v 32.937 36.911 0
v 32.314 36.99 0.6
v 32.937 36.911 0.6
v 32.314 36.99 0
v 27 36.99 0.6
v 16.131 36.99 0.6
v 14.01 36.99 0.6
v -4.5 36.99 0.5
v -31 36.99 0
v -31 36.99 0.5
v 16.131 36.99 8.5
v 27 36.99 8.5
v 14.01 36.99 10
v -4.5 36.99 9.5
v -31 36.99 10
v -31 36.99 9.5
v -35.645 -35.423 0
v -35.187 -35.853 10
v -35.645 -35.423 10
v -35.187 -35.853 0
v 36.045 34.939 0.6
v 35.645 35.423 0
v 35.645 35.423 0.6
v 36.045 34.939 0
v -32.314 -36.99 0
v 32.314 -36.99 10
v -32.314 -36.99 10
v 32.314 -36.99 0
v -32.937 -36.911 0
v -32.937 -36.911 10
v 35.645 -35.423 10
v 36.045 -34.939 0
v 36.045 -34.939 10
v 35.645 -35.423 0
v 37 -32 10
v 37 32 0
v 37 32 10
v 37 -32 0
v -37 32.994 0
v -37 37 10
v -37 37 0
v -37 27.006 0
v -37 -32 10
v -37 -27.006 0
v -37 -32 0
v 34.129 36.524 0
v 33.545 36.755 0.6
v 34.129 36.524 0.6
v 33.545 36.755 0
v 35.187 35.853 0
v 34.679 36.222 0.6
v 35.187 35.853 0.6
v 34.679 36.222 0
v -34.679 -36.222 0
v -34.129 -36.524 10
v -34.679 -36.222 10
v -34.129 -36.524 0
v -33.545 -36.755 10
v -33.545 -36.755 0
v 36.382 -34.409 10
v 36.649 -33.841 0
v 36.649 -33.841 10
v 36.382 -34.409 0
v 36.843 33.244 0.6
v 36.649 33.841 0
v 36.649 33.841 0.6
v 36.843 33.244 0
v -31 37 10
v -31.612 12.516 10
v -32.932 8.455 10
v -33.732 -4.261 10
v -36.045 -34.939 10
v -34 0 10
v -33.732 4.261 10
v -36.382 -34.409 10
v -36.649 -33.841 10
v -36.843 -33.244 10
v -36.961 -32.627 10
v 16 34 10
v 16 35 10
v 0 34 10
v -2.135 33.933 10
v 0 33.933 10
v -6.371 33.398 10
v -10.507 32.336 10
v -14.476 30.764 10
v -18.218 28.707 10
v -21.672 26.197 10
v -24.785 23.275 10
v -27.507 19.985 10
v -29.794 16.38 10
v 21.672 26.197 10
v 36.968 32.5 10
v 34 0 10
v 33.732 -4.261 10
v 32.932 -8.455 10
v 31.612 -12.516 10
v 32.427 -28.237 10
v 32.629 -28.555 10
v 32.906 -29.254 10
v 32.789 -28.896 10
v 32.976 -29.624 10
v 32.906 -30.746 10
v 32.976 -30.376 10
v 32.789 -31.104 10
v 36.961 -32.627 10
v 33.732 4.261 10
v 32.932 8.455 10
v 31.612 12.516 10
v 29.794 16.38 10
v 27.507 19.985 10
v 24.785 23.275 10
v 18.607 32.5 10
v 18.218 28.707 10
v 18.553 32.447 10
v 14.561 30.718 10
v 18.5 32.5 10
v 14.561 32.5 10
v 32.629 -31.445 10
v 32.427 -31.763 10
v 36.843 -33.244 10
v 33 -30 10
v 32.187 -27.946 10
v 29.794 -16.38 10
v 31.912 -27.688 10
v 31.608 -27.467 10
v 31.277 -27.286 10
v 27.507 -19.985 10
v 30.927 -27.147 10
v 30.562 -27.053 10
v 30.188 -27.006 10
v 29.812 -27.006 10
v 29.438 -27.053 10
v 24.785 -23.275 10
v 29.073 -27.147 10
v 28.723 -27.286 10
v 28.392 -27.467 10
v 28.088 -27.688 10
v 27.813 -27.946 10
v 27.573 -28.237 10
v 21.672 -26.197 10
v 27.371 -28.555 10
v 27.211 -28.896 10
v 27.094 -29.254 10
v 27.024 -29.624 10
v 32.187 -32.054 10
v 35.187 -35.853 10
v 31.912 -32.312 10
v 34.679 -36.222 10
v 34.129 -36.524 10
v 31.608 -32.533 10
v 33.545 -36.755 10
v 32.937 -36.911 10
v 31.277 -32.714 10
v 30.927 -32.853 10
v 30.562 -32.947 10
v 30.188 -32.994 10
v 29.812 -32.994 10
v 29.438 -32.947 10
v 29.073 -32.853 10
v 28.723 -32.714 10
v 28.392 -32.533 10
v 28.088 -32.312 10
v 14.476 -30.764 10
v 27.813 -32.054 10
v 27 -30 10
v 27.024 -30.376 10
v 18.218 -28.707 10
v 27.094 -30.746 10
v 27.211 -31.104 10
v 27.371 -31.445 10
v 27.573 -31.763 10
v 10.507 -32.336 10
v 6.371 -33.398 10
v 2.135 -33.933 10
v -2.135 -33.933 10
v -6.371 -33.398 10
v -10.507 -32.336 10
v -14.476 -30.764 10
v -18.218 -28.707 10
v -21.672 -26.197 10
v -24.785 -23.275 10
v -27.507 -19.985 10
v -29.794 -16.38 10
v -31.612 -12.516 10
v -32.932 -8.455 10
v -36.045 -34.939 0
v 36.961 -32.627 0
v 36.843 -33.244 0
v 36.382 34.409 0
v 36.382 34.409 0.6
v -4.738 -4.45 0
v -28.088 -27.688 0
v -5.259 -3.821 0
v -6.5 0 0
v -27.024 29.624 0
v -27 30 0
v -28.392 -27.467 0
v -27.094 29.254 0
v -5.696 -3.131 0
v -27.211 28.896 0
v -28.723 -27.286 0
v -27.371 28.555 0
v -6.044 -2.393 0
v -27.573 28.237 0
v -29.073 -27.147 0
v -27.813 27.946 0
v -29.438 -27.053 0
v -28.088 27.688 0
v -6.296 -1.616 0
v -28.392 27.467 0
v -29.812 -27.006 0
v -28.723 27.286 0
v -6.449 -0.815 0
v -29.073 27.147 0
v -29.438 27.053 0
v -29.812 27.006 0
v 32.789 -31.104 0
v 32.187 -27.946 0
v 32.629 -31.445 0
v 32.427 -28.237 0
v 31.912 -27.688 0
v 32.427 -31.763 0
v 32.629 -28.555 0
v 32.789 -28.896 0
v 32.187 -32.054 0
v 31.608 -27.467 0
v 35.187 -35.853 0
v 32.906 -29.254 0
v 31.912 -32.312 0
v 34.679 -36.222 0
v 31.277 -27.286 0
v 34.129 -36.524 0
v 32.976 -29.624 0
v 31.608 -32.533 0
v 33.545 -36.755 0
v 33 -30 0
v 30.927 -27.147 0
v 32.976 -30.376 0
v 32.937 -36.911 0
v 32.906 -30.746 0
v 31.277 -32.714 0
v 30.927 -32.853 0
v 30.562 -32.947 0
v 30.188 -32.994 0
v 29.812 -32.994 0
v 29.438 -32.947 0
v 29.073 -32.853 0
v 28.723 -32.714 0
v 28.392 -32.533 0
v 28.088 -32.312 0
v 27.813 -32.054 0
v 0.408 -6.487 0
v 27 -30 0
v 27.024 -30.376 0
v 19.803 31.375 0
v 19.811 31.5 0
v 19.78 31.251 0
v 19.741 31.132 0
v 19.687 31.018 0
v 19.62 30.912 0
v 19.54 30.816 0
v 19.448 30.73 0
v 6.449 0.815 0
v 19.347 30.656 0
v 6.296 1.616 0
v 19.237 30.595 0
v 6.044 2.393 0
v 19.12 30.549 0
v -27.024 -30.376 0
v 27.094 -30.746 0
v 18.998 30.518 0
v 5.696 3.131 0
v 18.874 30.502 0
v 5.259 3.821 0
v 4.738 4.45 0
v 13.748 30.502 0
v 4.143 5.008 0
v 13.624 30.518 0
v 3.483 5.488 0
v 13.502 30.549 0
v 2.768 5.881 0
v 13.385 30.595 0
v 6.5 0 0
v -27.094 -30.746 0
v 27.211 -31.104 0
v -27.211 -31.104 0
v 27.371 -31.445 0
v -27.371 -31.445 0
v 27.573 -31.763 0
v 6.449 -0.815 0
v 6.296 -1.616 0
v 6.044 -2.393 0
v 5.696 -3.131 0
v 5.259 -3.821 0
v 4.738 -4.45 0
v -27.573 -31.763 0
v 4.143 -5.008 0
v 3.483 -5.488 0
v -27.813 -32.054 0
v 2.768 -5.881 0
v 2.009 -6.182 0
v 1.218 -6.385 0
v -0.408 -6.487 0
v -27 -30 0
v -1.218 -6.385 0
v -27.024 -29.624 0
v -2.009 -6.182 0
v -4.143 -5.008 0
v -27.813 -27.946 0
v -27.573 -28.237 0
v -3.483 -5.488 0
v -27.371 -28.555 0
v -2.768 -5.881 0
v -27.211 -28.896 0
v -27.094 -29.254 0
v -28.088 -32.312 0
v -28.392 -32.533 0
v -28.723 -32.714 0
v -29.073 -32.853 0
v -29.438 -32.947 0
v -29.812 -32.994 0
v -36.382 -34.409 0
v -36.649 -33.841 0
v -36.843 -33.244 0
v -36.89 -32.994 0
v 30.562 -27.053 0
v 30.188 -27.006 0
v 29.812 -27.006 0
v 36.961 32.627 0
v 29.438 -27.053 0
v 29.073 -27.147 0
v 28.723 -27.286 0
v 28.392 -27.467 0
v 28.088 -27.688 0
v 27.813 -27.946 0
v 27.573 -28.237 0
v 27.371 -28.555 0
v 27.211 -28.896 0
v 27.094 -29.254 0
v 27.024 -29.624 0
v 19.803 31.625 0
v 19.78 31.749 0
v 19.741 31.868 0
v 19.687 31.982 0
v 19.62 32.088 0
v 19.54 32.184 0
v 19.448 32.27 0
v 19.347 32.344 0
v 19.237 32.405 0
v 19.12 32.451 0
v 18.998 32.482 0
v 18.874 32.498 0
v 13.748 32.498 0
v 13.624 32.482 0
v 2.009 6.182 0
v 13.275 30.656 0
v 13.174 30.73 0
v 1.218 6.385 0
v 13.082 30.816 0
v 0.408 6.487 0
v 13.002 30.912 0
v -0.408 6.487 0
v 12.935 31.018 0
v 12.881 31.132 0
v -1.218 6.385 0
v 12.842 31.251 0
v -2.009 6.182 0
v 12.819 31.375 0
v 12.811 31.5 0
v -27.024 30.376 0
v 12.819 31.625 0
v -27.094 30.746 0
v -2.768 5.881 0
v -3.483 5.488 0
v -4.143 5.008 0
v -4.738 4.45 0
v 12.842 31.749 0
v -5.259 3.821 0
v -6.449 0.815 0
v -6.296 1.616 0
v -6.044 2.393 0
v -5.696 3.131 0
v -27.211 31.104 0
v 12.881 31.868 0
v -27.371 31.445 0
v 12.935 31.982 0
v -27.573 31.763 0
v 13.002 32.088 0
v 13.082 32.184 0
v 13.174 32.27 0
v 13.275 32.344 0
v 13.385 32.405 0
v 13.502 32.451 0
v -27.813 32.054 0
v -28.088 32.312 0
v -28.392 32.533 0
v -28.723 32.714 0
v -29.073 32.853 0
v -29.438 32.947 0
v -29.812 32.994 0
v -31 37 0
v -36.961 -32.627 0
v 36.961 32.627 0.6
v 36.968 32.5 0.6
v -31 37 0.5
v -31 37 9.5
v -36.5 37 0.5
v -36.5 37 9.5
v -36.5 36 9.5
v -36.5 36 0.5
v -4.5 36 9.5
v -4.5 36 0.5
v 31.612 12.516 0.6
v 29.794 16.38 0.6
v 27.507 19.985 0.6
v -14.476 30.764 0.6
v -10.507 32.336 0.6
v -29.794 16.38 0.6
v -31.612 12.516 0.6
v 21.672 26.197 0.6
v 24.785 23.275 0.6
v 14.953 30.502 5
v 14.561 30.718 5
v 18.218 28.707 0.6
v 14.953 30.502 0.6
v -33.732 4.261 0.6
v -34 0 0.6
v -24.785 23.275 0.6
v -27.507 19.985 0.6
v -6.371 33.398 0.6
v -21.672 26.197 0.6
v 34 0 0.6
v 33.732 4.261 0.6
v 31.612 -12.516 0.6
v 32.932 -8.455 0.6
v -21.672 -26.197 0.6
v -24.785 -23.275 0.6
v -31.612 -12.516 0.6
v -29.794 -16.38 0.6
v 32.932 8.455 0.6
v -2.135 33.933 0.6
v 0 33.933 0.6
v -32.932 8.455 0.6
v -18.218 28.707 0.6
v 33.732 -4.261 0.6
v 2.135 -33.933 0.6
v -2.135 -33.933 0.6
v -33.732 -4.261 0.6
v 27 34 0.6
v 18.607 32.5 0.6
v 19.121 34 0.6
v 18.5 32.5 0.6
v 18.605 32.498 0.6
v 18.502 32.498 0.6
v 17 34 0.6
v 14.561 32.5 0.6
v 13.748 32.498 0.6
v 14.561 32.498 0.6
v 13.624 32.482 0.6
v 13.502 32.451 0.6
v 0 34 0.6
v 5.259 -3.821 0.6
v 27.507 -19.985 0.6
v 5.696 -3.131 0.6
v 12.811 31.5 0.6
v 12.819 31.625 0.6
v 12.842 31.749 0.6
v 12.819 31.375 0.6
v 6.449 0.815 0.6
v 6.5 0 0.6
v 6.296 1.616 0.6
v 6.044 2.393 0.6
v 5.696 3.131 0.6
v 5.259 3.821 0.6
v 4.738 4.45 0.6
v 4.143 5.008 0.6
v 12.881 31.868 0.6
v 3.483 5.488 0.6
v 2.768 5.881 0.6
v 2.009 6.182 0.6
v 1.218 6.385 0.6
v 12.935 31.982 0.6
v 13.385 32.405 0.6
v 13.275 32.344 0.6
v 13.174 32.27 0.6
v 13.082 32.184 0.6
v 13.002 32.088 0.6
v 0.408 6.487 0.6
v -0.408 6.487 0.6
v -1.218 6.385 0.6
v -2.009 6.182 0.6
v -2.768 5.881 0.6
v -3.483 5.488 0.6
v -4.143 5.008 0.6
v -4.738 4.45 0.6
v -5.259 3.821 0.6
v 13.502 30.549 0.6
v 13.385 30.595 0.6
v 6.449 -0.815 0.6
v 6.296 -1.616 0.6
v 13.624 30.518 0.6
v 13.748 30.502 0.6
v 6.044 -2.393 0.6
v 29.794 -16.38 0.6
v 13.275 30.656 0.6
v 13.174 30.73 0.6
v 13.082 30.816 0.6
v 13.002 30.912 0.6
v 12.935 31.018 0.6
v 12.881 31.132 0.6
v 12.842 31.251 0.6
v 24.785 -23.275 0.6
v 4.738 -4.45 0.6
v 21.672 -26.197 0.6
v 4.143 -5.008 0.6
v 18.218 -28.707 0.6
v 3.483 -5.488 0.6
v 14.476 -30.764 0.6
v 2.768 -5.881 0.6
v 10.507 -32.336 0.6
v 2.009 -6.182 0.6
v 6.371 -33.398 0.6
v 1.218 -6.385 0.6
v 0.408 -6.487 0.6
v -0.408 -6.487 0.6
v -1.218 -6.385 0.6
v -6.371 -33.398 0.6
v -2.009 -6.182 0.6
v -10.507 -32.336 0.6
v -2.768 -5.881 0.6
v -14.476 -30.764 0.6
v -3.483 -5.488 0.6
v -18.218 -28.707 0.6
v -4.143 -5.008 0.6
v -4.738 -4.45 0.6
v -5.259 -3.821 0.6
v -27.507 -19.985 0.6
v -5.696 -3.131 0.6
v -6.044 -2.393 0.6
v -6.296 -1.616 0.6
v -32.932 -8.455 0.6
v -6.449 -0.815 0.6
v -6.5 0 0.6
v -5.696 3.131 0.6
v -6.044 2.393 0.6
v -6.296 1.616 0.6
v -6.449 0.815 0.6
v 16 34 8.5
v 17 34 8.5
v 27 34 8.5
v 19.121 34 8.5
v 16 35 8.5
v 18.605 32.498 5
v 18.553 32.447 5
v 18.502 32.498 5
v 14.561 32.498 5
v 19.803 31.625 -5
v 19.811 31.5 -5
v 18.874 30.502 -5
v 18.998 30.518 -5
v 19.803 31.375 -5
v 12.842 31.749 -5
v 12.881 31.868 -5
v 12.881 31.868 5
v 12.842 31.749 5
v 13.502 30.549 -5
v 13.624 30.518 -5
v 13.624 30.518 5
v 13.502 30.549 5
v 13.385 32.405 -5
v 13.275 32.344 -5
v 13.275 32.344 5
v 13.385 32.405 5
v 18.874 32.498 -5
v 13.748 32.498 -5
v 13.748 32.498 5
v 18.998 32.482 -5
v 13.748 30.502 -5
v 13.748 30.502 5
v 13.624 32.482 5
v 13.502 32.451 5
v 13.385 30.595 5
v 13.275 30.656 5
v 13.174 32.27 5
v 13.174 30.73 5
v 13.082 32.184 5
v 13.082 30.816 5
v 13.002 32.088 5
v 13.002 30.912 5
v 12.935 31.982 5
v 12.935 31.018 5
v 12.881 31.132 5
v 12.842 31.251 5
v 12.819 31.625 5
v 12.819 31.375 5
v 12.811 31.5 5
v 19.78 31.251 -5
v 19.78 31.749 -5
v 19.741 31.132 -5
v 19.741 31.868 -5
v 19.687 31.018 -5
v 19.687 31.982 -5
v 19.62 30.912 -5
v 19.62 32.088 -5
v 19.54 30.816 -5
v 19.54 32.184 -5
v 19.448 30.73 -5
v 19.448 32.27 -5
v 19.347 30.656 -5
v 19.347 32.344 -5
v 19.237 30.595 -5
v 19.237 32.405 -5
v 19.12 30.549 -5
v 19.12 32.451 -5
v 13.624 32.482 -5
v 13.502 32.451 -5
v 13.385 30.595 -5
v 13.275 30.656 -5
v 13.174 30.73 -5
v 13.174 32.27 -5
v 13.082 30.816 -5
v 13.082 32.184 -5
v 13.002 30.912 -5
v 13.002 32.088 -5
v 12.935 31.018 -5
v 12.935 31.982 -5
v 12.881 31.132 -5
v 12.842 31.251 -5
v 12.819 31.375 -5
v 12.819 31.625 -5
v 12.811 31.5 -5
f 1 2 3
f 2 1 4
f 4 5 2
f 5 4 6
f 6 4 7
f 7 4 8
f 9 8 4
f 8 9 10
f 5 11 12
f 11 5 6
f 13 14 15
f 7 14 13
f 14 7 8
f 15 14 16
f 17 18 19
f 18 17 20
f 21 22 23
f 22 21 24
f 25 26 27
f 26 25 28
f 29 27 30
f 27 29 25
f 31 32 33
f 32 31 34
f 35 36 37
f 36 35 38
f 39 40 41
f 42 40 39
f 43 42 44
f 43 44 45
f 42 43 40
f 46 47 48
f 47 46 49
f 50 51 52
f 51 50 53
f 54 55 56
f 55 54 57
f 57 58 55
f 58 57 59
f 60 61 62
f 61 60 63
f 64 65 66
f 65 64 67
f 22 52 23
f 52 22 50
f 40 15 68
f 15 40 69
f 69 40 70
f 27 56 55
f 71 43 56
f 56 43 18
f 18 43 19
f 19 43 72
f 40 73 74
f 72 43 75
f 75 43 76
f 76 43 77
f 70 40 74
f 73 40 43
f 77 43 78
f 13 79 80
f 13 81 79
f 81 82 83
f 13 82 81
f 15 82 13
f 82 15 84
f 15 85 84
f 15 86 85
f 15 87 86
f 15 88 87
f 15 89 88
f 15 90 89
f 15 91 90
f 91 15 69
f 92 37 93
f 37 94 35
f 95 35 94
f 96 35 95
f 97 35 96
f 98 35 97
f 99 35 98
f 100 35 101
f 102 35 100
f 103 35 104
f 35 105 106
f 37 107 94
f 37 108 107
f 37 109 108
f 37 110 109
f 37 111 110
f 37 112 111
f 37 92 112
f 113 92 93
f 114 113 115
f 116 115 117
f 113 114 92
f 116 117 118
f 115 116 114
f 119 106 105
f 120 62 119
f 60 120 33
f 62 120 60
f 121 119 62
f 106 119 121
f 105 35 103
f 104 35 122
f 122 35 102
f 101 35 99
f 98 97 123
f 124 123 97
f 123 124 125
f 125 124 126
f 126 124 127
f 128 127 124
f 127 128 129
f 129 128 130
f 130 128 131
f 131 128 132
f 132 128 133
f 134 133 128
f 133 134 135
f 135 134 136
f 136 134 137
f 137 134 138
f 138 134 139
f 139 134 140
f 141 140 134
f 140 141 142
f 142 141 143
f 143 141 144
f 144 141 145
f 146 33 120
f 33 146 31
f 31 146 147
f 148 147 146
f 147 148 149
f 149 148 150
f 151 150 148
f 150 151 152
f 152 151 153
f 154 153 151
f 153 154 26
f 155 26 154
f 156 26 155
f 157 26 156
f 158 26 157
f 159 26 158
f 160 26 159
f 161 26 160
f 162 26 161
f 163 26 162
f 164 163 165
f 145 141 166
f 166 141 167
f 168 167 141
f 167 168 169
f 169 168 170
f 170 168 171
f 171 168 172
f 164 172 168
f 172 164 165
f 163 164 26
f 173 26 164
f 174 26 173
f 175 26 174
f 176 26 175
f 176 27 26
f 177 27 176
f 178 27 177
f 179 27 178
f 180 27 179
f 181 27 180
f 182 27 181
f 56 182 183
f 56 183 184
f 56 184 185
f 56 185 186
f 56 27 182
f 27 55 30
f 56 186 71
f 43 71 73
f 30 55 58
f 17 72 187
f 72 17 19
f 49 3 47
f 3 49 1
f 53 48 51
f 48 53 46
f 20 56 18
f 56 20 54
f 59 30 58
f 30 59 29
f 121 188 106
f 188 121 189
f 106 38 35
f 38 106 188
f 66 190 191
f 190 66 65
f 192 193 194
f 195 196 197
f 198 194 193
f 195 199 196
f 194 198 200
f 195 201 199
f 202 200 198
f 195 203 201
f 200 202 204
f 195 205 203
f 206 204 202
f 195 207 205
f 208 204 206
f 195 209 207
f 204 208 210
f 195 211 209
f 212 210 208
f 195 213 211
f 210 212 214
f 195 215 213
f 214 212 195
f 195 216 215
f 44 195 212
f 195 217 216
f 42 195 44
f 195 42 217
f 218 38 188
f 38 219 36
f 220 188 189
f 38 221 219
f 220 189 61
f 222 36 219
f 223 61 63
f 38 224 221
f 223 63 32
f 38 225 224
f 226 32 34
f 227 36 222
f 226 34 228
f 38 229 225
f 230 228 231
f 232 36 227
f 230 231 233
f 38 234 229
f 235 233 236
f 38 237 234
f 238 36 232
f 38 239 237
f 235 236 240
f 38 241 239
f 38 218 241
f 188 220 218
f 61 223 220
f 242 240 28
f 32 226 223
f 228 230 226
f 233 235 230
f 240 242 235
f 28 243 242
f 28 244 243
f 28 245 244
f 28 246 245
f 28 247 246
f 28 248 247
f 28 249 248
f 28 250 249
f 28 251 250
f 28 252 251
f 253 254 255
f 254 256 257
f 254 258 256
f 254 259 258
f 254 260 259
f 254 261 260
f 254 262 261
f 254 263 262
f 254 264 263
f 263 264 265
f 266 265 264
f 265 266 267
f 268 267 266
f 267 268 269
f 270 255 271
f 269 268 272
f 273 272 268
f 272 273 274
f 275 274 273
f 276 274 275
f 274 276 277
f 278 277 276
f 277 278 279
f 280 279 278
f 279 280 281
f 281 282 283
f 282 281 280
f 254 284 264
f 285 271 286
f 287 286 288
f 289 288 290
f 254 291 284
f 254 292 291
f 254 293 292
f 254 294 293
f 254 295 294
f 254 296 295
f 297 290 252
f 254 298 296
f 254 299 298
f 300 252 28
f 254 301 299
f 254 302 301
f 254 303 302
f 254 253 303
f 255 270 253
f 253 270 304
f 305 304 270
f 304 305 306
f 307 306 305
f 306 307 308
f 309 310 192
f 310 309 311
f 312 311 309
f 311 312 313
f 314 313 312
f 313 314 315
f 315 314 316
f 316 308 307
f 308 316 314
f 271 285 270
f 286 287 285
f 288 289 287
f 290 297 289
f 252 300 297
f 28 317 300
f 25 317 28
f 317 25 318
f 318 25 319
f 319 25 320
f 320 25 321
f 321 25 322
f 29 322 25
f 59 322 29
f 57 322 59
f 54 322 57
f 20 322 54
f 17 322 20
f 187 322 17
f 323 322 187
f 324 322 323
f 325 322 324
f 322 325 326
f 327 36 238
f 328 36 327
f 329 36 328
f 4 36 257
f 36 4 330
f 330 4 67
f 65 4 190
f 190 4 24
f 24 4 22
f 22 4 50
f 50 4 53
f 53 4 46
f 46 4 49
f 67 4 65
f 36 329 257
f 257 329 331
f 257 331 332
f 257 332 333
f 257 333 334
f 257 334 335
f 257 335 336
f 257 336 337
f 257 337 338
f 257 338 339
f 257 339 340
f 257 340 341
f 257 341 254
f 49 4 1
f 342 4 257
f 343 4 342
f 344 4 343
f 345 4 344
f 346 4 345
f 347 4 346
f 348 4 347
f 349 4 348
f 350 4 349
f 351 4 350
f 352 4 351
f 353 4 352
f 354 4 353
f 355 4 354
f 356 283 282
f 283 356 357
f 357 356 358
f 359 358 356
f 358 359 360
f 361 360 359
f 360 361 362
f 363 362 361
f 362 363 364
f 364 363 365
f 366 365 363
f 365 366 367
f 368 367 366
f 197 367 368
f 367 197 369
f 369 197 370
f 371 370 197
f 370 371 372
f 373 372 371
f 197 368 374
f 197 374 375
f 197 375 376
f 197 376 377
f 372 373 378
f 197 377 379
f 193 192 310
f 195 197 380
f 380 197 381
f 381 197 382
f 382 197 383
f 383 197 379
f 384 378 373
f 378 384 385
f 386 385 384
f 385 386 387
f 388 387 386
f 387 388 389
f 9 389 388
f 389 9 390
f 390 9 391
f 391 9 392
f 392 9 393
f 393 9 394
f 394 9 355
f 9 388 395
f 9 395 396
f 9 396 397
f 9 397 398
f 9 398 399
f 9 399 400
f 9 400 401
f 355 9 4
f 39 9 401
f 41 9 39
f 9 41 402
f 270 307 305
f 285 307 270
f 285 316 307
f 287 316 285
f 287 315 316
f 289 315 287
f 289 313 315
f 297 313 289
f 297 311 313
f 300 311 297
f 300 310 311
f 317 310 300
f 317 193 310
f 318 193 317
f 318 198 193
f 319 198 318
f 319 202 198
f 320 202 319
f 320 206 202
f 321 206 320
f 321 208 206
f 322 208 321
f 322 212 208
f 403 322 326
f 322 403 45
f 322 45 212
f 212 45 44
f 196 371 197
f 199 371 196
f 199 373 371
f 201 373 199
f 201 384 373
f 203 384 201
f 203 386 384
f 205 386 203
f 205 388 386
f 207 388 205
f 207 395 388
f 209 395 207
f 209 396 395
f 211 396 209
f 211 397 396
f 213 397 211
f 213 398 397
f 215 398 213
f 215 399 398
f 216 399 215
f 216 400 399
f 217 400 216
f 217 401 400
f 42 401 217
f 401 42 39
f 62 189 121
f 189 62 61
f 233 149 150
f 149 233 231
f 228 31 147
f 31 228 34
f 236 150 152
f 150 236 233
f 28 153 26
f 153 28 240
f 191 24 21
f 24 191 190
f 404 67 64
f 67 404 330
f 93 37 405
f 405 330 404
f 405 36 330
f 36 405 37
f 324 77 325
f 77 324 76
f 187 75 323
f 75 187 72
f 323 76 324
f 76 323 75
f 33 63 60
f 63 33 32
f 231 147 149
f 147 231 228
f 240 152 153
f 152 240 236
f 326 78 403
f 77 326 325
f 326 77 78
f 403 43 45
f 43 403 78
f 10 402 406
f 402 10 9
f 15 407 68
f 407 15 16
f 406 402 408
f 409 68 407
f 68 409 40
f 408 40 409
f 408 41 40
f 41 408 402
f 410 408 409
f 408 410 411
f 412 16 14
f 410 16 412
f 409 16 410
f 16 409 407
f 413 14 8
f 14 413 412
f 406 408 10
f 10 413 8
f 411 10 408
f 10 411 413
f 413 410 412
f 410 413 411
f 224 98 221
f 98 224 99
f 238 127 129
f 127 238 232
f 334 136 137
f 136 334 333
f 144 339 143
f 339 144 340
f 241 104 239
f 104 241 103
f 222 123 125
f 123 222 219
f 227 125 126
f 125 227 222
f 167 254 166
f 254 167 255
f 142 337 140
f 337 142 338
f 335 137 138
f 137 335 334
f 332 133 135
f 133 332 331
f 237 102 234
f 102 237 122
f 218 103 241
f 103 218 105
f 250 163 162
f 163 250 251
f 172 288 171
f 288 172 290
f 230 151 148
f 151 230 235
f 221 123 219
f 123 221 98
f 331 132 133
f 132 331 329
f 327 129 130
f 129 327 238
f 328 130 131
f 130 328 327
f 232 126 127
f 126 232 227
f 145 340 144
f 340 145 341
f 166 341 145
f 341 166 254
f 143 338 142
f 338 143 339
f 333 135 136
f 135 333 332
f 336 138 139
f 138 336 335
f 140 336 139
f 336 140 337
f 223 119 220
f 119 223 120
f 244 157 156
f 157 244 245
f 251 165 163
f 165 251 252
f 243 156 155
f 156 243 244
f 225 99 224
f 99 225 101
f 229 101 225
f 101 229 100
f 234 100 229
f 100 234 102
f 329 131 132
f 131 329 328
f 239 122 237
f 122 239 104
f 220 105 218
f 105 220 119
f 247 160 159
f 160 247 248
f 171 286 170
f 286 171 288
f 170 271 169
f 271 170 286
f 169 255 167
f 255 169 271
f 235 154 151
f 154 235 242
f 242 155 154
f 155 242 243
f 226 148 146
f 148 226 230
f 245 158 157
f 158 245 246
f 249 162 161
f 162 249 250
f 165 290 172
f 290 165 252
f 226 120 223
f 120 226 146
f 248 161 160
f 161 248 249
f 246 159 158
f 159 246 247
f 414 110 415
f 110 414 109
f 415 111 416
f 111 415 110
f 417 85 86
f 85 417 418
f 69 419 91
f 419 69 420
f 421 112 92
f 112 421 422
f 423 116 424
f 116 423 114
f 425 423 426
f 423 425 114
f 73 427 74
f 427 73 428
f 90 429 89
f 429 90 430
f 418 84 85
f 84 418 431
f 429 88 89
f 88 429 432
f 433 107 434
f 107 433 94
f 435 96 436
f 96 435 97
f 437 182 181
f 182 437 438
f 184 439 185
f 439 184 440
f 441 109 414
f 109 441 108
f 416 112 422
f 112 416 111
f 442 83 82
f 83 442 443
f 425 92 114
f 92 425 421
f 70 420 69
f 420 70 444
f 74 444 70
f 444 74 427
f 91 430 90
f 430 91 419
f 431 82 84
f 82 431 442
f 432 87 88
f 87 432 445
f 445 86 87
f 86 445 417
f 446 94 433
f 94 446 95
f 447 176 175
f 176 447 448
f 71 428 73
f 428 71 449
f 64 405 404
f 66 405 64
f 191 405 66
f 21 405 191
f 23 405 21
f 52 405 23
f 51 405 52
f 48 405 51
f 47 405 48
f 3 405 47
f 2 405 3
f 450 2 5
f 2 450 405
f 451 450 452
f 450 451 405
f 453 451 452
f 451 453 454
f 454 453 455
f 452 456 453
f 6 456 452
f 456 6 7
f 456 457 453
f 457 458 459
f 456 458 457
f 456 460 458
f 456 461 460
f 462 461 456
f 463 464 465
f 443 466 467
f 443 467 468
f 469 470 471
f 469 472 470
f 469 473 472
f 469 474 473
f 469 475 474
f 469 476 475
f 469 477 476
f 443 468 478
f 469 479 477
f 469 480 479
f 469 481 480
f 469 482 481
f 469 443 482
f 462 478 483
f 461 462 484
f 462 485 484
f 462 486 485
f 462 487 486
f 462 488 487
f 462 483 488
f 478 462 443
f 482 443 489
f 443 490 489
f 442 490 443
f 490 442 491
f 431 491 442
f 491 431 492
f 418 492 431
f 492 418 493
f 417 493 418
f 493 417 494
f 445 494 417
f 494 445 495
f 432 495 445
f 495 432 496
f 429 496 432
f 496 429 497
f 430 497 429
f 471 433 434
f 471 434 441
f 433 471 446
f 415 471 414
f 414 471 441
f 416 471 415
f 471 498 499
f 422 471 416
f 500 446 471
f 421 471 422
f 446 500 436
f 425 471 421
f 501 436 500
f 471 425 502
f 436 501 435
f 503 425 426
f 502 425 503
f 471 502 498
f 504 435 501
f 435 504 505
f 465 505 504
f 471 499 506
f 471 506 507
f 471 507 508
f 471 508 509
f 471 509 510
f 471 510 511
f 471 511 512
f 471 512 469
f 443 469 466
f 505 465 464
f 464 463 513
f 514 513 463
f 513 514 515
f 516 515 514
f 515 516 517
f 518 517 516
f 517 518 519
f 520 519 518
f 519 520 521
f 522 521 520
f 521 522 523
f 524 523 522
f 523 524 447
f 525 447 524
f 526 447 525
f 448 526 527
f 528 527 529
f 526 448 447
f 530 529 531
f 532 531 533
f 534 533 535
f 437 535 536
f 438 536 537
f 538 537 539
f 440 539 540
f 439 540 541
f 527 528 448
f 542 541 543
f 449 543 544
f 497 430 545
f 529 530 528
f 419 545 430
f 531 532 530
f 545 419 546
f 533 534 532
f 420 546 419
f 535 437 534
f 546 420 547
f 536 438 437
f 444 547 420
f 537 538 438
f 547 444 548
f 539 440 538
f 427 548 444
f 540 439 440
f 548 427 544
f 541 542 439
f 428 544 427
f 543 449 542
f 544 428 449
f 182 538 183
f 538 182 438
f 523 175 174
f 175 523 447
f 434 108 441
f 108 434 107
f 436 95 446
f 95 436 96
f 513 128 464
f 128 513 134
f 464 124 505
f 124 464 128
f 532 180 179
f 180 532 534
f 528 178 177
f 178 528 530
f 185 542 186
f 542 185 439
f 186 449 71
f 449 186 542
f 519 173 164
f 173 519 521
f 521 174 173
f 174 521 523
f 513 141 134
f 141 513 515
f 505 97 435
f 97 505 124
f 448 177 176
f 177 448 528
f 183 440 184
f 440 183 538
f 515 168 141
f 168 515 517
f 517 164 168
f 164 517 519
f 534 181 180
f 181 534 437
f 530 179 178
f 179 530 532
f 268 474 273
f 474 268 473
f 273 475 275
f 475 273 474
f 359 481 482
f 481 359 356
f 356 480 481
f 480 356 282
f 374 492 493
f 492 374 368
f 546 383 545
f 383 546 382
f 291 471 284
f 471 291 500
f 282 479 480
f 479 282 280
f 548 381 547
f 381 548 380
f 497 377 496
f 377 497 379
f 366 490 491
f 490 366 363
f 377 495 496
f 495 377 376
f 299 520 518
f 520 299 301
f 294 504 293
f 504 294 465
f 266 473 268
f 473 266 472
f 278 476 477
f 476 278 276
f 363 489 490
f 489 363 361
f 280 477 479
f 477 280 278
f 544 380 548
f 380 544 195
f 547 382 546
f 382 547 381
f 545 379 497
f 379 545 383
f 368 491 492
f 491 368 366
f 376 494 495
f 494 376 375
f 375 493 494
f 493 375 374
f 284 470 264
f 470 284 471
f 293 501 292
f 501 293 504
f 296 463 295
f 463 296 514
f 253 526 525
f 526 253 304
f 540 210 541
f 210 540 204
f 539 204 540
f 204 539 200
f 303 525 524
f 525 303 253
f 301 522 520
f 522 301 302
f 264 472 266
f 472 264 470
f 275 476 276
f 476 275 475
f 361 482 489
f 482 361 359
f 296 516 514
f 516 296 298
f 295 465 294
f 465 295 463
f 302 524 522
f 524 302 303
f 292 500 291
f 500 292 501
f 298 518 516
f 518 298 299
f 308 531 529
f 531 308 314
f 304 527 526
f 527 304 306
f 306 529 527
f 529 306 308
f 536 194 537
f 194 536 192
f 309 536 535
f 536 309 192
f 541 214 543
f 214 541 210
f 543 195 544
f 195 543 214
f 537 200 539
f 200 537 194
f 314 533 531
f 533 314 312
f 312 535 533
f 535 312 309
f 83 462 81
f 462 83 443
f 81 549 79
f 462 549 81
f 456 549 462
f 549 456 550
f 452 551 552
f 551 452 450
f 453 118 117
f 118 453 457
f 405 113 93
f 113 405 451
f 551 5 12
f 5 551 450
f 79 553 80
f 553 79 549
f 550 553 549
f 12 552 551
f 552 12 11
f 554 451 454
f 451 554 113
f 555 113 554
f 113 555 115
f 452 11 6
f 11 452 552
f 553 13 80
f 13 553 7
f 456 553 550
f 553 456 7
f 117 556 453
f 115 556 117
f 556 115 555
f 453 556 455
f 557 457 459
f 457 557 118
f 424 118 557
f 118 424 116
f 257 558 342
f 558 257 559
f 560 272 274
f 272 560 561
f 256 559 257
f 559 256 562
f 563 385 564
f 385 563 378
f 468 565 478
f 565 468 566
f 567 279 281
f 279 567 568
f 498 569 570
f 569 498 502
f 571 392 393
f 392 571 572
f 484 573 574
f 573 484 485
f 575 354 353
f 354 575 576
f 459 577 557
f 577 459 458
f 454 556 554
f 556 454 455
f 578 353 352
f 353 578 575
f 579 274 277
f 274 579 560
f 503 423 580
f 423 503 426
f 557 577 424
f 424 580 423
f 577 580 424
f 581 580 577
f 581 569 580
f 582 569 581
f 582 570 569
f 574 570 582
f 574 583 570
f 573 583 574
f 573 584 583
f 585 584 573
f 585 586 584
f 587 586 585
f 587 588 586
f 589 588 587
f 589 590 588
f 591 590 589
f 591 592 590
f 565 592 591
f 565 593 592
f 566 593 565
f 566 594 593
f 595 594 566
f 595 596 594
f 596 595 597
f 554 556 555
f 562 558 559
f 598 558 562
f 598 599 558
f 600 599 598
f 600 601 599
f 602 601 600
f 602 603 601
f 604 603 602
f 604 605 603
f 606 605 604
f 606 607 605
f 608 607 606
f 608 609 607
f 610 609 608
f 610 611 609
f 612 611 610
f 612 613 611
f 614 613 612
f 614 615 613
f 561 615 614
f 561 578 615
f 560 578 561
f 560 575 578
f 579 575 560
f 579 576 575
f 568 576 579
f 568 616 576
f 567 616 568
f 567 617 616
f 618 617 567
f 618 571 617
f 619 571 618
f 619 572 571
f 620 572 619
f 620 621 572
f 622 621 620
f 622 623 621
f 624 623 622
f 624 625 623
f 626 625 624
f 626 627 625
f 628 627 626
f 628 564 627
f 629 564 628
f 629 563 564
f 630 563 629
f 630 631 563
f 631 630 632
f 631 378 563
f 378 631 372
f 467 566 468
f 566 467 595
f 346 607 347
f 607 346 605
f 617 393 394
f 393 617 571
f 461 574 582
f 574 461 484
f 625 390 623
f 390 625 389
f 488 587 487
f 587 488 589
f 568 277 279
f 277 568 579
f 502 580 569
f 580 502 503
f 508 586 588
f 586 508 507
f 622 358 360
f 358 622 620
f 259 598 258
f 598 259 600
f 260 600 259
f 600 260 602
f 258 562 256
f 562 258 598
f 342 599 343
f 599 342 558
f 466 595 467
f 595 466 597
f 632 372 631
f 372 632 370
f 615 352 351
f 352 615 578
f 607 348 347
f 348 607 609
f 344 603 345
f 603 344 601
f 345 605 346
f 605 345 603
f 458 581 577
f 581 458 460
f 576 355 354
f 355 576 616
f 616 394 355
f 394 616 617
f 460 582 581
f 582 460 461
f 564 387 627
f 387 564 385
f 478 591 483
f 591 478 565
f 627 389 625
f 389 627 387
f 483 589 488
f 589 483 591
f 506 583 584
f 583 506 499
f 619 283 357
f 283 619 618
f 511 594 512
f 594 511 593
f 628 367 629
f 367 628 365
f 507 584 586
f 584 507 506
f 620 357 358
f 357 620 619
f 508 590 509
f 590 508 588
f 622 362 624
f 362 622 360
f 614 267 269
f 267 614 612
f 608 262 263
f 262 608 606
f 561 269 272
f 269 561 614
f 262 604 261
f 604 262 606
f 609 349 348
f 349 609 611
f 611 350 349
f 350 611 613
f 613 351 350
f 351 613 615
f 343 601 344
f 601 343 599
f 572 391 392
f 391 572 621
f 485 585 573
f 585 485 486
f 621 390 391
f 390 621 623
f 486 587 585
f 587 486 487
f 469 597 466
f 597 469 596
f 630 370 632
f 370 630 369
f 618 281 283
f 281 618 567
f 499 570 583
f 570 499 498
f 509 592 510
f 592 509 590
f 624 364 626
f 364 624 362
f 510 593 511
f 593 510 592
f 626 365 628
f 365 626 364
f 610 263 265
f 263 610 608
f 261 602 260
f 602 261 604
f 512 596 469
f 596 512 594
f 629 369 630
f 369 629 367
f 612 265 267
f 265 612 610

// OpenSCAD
$fn = 50;


union() {
	difference() {
		union() {
			hull() {
				translate(v = [-32.0000000000, 32.0000000000, 0]) {
					cylinder(h = 10, r = 5);
				}
				translate(v = [32.0000000000, 32.0000000000, 0]) {
					cylinder(h = 10, r = 5);
				}
				translate(v = [-32.0000000000, -32.0000000000, 0]) {
					cylinder(h = 10, r = 5);
				}
				translate(v = [32.0000000000, -32.0000000000, 0]) {
					cylinder(h = 10, r = 5);
				}
			}
			translate(v = [-37.0000000000, 31.0000000000, 0]) {
				cube(size = [6, 6, 10]);
			}
		}
		union() {
			translate(v = [-37.5000000000, -30.0000000000, -250.0000000000]) {
				rotate(a = [0, 0, 0]) {
					difference() {
						union() {
							hull() {
								translate(v = [7.5000000000, 0, 0]) {
									cylinder(h = 250, r = 3.0000000000, r1 = 3.0000000000, r2 = 3.0000000000);
								}
								translate(v = [-7.5000000000, 0, 0]) {
									cylinder(h = 250, r = 3.0000000000, r1 = 3.0000000000, r2 = 3.0000000000);
								}
							}
						}
						union();
					}
				}
			}
			translate(v = [-37.5000000000, 30.0000000000, -250.0000000000]) {
				rotate(a = [0, 0, 0]) {
					difference() {
						union() {
							hull() {
								translate(v = [7.5000000000, 0, 0]) {
									cylinder(h = 250, r = 3.0000000000, r1 = 3.0000000000, r2 = 3.0000000000);
								}
								translate(v = [-7.5000000000, 0, 0]) {
									cylinder(h = 250, r = 3.0000000000, r1 = 3.0000000000, r2 = 3.0000000000);
								}
							}
						}
						union();
					}
				}
			}
			translate(v = [-36.5000000000, 36.0000000000, 0.5000000000]) {
				cube(size = [32, 1, 9.0000000000]);
			}
			translate(v = [30.0000000000, -30.0000000000, 0]) {
				cylinder(h = 100, r = 3.0000000000);
			}
			translate(v = [0, 0, 0.6000000000]) {
				cylinder(h = 12.4000000000, r = 34.0000000000);
			}
			translate(v = [0, 0, -5.0000000000]) {
				cylinder(h = 10, r = 6.5000000000);
			}
			translate(v = [0.0000000000, 32.5000000000, 0.6000000000]) {
				cube(size = [37.0000000000, 1.5000000000, 12.4000000000]);
			}
			translate(v = [27.0000000000, 32.5000000000, 0.6000000000]) {
				cube(size = [10, 4.5000000000, 12.4000000000]);
			}
			translate(v = [16.0000000000, 32.5000000000, 8.5000000000]) {
				cube(size = [21, 4.5000000000, 1.5000000000]);
			}
			translate(v = [13.2500000000, 37.7500000000, 0.6000000000]) {
				rotate(a = [0, 0, -45]) {
					cube(size = [7.5000000000, 1.5000000000, 12.4000000000]);
				}
			}
			translate(v = [7.0610000000, 30.5000000000, 0.6000000000]) {
				cube(size = [7.5000000000, 2, 9.4000000000]);
			}
		}
	}
	union() {
		translate(v = [16.3110000000, 31.5000000000, -5.0000000000]) {
			rotate(a = [0, 0, 0]) {
				difference() {
					union() {
						#hull() {
							#translate(v = [2.5000000000, 0, 0]) {
								cylinder(h = 10, r = 1.0000000000, r1 = 1.0000000000, r2 = 1.0000000000);
							}
							#translate(v = [-2.5000000000, 0, 0]) {
								cylinder(h = 10, r = 1.0000000000, r1 = 1.0000000000, r2 = 1.0000000000);
							}
						}
					}
					union();
				}
			}
		}
	}
}
